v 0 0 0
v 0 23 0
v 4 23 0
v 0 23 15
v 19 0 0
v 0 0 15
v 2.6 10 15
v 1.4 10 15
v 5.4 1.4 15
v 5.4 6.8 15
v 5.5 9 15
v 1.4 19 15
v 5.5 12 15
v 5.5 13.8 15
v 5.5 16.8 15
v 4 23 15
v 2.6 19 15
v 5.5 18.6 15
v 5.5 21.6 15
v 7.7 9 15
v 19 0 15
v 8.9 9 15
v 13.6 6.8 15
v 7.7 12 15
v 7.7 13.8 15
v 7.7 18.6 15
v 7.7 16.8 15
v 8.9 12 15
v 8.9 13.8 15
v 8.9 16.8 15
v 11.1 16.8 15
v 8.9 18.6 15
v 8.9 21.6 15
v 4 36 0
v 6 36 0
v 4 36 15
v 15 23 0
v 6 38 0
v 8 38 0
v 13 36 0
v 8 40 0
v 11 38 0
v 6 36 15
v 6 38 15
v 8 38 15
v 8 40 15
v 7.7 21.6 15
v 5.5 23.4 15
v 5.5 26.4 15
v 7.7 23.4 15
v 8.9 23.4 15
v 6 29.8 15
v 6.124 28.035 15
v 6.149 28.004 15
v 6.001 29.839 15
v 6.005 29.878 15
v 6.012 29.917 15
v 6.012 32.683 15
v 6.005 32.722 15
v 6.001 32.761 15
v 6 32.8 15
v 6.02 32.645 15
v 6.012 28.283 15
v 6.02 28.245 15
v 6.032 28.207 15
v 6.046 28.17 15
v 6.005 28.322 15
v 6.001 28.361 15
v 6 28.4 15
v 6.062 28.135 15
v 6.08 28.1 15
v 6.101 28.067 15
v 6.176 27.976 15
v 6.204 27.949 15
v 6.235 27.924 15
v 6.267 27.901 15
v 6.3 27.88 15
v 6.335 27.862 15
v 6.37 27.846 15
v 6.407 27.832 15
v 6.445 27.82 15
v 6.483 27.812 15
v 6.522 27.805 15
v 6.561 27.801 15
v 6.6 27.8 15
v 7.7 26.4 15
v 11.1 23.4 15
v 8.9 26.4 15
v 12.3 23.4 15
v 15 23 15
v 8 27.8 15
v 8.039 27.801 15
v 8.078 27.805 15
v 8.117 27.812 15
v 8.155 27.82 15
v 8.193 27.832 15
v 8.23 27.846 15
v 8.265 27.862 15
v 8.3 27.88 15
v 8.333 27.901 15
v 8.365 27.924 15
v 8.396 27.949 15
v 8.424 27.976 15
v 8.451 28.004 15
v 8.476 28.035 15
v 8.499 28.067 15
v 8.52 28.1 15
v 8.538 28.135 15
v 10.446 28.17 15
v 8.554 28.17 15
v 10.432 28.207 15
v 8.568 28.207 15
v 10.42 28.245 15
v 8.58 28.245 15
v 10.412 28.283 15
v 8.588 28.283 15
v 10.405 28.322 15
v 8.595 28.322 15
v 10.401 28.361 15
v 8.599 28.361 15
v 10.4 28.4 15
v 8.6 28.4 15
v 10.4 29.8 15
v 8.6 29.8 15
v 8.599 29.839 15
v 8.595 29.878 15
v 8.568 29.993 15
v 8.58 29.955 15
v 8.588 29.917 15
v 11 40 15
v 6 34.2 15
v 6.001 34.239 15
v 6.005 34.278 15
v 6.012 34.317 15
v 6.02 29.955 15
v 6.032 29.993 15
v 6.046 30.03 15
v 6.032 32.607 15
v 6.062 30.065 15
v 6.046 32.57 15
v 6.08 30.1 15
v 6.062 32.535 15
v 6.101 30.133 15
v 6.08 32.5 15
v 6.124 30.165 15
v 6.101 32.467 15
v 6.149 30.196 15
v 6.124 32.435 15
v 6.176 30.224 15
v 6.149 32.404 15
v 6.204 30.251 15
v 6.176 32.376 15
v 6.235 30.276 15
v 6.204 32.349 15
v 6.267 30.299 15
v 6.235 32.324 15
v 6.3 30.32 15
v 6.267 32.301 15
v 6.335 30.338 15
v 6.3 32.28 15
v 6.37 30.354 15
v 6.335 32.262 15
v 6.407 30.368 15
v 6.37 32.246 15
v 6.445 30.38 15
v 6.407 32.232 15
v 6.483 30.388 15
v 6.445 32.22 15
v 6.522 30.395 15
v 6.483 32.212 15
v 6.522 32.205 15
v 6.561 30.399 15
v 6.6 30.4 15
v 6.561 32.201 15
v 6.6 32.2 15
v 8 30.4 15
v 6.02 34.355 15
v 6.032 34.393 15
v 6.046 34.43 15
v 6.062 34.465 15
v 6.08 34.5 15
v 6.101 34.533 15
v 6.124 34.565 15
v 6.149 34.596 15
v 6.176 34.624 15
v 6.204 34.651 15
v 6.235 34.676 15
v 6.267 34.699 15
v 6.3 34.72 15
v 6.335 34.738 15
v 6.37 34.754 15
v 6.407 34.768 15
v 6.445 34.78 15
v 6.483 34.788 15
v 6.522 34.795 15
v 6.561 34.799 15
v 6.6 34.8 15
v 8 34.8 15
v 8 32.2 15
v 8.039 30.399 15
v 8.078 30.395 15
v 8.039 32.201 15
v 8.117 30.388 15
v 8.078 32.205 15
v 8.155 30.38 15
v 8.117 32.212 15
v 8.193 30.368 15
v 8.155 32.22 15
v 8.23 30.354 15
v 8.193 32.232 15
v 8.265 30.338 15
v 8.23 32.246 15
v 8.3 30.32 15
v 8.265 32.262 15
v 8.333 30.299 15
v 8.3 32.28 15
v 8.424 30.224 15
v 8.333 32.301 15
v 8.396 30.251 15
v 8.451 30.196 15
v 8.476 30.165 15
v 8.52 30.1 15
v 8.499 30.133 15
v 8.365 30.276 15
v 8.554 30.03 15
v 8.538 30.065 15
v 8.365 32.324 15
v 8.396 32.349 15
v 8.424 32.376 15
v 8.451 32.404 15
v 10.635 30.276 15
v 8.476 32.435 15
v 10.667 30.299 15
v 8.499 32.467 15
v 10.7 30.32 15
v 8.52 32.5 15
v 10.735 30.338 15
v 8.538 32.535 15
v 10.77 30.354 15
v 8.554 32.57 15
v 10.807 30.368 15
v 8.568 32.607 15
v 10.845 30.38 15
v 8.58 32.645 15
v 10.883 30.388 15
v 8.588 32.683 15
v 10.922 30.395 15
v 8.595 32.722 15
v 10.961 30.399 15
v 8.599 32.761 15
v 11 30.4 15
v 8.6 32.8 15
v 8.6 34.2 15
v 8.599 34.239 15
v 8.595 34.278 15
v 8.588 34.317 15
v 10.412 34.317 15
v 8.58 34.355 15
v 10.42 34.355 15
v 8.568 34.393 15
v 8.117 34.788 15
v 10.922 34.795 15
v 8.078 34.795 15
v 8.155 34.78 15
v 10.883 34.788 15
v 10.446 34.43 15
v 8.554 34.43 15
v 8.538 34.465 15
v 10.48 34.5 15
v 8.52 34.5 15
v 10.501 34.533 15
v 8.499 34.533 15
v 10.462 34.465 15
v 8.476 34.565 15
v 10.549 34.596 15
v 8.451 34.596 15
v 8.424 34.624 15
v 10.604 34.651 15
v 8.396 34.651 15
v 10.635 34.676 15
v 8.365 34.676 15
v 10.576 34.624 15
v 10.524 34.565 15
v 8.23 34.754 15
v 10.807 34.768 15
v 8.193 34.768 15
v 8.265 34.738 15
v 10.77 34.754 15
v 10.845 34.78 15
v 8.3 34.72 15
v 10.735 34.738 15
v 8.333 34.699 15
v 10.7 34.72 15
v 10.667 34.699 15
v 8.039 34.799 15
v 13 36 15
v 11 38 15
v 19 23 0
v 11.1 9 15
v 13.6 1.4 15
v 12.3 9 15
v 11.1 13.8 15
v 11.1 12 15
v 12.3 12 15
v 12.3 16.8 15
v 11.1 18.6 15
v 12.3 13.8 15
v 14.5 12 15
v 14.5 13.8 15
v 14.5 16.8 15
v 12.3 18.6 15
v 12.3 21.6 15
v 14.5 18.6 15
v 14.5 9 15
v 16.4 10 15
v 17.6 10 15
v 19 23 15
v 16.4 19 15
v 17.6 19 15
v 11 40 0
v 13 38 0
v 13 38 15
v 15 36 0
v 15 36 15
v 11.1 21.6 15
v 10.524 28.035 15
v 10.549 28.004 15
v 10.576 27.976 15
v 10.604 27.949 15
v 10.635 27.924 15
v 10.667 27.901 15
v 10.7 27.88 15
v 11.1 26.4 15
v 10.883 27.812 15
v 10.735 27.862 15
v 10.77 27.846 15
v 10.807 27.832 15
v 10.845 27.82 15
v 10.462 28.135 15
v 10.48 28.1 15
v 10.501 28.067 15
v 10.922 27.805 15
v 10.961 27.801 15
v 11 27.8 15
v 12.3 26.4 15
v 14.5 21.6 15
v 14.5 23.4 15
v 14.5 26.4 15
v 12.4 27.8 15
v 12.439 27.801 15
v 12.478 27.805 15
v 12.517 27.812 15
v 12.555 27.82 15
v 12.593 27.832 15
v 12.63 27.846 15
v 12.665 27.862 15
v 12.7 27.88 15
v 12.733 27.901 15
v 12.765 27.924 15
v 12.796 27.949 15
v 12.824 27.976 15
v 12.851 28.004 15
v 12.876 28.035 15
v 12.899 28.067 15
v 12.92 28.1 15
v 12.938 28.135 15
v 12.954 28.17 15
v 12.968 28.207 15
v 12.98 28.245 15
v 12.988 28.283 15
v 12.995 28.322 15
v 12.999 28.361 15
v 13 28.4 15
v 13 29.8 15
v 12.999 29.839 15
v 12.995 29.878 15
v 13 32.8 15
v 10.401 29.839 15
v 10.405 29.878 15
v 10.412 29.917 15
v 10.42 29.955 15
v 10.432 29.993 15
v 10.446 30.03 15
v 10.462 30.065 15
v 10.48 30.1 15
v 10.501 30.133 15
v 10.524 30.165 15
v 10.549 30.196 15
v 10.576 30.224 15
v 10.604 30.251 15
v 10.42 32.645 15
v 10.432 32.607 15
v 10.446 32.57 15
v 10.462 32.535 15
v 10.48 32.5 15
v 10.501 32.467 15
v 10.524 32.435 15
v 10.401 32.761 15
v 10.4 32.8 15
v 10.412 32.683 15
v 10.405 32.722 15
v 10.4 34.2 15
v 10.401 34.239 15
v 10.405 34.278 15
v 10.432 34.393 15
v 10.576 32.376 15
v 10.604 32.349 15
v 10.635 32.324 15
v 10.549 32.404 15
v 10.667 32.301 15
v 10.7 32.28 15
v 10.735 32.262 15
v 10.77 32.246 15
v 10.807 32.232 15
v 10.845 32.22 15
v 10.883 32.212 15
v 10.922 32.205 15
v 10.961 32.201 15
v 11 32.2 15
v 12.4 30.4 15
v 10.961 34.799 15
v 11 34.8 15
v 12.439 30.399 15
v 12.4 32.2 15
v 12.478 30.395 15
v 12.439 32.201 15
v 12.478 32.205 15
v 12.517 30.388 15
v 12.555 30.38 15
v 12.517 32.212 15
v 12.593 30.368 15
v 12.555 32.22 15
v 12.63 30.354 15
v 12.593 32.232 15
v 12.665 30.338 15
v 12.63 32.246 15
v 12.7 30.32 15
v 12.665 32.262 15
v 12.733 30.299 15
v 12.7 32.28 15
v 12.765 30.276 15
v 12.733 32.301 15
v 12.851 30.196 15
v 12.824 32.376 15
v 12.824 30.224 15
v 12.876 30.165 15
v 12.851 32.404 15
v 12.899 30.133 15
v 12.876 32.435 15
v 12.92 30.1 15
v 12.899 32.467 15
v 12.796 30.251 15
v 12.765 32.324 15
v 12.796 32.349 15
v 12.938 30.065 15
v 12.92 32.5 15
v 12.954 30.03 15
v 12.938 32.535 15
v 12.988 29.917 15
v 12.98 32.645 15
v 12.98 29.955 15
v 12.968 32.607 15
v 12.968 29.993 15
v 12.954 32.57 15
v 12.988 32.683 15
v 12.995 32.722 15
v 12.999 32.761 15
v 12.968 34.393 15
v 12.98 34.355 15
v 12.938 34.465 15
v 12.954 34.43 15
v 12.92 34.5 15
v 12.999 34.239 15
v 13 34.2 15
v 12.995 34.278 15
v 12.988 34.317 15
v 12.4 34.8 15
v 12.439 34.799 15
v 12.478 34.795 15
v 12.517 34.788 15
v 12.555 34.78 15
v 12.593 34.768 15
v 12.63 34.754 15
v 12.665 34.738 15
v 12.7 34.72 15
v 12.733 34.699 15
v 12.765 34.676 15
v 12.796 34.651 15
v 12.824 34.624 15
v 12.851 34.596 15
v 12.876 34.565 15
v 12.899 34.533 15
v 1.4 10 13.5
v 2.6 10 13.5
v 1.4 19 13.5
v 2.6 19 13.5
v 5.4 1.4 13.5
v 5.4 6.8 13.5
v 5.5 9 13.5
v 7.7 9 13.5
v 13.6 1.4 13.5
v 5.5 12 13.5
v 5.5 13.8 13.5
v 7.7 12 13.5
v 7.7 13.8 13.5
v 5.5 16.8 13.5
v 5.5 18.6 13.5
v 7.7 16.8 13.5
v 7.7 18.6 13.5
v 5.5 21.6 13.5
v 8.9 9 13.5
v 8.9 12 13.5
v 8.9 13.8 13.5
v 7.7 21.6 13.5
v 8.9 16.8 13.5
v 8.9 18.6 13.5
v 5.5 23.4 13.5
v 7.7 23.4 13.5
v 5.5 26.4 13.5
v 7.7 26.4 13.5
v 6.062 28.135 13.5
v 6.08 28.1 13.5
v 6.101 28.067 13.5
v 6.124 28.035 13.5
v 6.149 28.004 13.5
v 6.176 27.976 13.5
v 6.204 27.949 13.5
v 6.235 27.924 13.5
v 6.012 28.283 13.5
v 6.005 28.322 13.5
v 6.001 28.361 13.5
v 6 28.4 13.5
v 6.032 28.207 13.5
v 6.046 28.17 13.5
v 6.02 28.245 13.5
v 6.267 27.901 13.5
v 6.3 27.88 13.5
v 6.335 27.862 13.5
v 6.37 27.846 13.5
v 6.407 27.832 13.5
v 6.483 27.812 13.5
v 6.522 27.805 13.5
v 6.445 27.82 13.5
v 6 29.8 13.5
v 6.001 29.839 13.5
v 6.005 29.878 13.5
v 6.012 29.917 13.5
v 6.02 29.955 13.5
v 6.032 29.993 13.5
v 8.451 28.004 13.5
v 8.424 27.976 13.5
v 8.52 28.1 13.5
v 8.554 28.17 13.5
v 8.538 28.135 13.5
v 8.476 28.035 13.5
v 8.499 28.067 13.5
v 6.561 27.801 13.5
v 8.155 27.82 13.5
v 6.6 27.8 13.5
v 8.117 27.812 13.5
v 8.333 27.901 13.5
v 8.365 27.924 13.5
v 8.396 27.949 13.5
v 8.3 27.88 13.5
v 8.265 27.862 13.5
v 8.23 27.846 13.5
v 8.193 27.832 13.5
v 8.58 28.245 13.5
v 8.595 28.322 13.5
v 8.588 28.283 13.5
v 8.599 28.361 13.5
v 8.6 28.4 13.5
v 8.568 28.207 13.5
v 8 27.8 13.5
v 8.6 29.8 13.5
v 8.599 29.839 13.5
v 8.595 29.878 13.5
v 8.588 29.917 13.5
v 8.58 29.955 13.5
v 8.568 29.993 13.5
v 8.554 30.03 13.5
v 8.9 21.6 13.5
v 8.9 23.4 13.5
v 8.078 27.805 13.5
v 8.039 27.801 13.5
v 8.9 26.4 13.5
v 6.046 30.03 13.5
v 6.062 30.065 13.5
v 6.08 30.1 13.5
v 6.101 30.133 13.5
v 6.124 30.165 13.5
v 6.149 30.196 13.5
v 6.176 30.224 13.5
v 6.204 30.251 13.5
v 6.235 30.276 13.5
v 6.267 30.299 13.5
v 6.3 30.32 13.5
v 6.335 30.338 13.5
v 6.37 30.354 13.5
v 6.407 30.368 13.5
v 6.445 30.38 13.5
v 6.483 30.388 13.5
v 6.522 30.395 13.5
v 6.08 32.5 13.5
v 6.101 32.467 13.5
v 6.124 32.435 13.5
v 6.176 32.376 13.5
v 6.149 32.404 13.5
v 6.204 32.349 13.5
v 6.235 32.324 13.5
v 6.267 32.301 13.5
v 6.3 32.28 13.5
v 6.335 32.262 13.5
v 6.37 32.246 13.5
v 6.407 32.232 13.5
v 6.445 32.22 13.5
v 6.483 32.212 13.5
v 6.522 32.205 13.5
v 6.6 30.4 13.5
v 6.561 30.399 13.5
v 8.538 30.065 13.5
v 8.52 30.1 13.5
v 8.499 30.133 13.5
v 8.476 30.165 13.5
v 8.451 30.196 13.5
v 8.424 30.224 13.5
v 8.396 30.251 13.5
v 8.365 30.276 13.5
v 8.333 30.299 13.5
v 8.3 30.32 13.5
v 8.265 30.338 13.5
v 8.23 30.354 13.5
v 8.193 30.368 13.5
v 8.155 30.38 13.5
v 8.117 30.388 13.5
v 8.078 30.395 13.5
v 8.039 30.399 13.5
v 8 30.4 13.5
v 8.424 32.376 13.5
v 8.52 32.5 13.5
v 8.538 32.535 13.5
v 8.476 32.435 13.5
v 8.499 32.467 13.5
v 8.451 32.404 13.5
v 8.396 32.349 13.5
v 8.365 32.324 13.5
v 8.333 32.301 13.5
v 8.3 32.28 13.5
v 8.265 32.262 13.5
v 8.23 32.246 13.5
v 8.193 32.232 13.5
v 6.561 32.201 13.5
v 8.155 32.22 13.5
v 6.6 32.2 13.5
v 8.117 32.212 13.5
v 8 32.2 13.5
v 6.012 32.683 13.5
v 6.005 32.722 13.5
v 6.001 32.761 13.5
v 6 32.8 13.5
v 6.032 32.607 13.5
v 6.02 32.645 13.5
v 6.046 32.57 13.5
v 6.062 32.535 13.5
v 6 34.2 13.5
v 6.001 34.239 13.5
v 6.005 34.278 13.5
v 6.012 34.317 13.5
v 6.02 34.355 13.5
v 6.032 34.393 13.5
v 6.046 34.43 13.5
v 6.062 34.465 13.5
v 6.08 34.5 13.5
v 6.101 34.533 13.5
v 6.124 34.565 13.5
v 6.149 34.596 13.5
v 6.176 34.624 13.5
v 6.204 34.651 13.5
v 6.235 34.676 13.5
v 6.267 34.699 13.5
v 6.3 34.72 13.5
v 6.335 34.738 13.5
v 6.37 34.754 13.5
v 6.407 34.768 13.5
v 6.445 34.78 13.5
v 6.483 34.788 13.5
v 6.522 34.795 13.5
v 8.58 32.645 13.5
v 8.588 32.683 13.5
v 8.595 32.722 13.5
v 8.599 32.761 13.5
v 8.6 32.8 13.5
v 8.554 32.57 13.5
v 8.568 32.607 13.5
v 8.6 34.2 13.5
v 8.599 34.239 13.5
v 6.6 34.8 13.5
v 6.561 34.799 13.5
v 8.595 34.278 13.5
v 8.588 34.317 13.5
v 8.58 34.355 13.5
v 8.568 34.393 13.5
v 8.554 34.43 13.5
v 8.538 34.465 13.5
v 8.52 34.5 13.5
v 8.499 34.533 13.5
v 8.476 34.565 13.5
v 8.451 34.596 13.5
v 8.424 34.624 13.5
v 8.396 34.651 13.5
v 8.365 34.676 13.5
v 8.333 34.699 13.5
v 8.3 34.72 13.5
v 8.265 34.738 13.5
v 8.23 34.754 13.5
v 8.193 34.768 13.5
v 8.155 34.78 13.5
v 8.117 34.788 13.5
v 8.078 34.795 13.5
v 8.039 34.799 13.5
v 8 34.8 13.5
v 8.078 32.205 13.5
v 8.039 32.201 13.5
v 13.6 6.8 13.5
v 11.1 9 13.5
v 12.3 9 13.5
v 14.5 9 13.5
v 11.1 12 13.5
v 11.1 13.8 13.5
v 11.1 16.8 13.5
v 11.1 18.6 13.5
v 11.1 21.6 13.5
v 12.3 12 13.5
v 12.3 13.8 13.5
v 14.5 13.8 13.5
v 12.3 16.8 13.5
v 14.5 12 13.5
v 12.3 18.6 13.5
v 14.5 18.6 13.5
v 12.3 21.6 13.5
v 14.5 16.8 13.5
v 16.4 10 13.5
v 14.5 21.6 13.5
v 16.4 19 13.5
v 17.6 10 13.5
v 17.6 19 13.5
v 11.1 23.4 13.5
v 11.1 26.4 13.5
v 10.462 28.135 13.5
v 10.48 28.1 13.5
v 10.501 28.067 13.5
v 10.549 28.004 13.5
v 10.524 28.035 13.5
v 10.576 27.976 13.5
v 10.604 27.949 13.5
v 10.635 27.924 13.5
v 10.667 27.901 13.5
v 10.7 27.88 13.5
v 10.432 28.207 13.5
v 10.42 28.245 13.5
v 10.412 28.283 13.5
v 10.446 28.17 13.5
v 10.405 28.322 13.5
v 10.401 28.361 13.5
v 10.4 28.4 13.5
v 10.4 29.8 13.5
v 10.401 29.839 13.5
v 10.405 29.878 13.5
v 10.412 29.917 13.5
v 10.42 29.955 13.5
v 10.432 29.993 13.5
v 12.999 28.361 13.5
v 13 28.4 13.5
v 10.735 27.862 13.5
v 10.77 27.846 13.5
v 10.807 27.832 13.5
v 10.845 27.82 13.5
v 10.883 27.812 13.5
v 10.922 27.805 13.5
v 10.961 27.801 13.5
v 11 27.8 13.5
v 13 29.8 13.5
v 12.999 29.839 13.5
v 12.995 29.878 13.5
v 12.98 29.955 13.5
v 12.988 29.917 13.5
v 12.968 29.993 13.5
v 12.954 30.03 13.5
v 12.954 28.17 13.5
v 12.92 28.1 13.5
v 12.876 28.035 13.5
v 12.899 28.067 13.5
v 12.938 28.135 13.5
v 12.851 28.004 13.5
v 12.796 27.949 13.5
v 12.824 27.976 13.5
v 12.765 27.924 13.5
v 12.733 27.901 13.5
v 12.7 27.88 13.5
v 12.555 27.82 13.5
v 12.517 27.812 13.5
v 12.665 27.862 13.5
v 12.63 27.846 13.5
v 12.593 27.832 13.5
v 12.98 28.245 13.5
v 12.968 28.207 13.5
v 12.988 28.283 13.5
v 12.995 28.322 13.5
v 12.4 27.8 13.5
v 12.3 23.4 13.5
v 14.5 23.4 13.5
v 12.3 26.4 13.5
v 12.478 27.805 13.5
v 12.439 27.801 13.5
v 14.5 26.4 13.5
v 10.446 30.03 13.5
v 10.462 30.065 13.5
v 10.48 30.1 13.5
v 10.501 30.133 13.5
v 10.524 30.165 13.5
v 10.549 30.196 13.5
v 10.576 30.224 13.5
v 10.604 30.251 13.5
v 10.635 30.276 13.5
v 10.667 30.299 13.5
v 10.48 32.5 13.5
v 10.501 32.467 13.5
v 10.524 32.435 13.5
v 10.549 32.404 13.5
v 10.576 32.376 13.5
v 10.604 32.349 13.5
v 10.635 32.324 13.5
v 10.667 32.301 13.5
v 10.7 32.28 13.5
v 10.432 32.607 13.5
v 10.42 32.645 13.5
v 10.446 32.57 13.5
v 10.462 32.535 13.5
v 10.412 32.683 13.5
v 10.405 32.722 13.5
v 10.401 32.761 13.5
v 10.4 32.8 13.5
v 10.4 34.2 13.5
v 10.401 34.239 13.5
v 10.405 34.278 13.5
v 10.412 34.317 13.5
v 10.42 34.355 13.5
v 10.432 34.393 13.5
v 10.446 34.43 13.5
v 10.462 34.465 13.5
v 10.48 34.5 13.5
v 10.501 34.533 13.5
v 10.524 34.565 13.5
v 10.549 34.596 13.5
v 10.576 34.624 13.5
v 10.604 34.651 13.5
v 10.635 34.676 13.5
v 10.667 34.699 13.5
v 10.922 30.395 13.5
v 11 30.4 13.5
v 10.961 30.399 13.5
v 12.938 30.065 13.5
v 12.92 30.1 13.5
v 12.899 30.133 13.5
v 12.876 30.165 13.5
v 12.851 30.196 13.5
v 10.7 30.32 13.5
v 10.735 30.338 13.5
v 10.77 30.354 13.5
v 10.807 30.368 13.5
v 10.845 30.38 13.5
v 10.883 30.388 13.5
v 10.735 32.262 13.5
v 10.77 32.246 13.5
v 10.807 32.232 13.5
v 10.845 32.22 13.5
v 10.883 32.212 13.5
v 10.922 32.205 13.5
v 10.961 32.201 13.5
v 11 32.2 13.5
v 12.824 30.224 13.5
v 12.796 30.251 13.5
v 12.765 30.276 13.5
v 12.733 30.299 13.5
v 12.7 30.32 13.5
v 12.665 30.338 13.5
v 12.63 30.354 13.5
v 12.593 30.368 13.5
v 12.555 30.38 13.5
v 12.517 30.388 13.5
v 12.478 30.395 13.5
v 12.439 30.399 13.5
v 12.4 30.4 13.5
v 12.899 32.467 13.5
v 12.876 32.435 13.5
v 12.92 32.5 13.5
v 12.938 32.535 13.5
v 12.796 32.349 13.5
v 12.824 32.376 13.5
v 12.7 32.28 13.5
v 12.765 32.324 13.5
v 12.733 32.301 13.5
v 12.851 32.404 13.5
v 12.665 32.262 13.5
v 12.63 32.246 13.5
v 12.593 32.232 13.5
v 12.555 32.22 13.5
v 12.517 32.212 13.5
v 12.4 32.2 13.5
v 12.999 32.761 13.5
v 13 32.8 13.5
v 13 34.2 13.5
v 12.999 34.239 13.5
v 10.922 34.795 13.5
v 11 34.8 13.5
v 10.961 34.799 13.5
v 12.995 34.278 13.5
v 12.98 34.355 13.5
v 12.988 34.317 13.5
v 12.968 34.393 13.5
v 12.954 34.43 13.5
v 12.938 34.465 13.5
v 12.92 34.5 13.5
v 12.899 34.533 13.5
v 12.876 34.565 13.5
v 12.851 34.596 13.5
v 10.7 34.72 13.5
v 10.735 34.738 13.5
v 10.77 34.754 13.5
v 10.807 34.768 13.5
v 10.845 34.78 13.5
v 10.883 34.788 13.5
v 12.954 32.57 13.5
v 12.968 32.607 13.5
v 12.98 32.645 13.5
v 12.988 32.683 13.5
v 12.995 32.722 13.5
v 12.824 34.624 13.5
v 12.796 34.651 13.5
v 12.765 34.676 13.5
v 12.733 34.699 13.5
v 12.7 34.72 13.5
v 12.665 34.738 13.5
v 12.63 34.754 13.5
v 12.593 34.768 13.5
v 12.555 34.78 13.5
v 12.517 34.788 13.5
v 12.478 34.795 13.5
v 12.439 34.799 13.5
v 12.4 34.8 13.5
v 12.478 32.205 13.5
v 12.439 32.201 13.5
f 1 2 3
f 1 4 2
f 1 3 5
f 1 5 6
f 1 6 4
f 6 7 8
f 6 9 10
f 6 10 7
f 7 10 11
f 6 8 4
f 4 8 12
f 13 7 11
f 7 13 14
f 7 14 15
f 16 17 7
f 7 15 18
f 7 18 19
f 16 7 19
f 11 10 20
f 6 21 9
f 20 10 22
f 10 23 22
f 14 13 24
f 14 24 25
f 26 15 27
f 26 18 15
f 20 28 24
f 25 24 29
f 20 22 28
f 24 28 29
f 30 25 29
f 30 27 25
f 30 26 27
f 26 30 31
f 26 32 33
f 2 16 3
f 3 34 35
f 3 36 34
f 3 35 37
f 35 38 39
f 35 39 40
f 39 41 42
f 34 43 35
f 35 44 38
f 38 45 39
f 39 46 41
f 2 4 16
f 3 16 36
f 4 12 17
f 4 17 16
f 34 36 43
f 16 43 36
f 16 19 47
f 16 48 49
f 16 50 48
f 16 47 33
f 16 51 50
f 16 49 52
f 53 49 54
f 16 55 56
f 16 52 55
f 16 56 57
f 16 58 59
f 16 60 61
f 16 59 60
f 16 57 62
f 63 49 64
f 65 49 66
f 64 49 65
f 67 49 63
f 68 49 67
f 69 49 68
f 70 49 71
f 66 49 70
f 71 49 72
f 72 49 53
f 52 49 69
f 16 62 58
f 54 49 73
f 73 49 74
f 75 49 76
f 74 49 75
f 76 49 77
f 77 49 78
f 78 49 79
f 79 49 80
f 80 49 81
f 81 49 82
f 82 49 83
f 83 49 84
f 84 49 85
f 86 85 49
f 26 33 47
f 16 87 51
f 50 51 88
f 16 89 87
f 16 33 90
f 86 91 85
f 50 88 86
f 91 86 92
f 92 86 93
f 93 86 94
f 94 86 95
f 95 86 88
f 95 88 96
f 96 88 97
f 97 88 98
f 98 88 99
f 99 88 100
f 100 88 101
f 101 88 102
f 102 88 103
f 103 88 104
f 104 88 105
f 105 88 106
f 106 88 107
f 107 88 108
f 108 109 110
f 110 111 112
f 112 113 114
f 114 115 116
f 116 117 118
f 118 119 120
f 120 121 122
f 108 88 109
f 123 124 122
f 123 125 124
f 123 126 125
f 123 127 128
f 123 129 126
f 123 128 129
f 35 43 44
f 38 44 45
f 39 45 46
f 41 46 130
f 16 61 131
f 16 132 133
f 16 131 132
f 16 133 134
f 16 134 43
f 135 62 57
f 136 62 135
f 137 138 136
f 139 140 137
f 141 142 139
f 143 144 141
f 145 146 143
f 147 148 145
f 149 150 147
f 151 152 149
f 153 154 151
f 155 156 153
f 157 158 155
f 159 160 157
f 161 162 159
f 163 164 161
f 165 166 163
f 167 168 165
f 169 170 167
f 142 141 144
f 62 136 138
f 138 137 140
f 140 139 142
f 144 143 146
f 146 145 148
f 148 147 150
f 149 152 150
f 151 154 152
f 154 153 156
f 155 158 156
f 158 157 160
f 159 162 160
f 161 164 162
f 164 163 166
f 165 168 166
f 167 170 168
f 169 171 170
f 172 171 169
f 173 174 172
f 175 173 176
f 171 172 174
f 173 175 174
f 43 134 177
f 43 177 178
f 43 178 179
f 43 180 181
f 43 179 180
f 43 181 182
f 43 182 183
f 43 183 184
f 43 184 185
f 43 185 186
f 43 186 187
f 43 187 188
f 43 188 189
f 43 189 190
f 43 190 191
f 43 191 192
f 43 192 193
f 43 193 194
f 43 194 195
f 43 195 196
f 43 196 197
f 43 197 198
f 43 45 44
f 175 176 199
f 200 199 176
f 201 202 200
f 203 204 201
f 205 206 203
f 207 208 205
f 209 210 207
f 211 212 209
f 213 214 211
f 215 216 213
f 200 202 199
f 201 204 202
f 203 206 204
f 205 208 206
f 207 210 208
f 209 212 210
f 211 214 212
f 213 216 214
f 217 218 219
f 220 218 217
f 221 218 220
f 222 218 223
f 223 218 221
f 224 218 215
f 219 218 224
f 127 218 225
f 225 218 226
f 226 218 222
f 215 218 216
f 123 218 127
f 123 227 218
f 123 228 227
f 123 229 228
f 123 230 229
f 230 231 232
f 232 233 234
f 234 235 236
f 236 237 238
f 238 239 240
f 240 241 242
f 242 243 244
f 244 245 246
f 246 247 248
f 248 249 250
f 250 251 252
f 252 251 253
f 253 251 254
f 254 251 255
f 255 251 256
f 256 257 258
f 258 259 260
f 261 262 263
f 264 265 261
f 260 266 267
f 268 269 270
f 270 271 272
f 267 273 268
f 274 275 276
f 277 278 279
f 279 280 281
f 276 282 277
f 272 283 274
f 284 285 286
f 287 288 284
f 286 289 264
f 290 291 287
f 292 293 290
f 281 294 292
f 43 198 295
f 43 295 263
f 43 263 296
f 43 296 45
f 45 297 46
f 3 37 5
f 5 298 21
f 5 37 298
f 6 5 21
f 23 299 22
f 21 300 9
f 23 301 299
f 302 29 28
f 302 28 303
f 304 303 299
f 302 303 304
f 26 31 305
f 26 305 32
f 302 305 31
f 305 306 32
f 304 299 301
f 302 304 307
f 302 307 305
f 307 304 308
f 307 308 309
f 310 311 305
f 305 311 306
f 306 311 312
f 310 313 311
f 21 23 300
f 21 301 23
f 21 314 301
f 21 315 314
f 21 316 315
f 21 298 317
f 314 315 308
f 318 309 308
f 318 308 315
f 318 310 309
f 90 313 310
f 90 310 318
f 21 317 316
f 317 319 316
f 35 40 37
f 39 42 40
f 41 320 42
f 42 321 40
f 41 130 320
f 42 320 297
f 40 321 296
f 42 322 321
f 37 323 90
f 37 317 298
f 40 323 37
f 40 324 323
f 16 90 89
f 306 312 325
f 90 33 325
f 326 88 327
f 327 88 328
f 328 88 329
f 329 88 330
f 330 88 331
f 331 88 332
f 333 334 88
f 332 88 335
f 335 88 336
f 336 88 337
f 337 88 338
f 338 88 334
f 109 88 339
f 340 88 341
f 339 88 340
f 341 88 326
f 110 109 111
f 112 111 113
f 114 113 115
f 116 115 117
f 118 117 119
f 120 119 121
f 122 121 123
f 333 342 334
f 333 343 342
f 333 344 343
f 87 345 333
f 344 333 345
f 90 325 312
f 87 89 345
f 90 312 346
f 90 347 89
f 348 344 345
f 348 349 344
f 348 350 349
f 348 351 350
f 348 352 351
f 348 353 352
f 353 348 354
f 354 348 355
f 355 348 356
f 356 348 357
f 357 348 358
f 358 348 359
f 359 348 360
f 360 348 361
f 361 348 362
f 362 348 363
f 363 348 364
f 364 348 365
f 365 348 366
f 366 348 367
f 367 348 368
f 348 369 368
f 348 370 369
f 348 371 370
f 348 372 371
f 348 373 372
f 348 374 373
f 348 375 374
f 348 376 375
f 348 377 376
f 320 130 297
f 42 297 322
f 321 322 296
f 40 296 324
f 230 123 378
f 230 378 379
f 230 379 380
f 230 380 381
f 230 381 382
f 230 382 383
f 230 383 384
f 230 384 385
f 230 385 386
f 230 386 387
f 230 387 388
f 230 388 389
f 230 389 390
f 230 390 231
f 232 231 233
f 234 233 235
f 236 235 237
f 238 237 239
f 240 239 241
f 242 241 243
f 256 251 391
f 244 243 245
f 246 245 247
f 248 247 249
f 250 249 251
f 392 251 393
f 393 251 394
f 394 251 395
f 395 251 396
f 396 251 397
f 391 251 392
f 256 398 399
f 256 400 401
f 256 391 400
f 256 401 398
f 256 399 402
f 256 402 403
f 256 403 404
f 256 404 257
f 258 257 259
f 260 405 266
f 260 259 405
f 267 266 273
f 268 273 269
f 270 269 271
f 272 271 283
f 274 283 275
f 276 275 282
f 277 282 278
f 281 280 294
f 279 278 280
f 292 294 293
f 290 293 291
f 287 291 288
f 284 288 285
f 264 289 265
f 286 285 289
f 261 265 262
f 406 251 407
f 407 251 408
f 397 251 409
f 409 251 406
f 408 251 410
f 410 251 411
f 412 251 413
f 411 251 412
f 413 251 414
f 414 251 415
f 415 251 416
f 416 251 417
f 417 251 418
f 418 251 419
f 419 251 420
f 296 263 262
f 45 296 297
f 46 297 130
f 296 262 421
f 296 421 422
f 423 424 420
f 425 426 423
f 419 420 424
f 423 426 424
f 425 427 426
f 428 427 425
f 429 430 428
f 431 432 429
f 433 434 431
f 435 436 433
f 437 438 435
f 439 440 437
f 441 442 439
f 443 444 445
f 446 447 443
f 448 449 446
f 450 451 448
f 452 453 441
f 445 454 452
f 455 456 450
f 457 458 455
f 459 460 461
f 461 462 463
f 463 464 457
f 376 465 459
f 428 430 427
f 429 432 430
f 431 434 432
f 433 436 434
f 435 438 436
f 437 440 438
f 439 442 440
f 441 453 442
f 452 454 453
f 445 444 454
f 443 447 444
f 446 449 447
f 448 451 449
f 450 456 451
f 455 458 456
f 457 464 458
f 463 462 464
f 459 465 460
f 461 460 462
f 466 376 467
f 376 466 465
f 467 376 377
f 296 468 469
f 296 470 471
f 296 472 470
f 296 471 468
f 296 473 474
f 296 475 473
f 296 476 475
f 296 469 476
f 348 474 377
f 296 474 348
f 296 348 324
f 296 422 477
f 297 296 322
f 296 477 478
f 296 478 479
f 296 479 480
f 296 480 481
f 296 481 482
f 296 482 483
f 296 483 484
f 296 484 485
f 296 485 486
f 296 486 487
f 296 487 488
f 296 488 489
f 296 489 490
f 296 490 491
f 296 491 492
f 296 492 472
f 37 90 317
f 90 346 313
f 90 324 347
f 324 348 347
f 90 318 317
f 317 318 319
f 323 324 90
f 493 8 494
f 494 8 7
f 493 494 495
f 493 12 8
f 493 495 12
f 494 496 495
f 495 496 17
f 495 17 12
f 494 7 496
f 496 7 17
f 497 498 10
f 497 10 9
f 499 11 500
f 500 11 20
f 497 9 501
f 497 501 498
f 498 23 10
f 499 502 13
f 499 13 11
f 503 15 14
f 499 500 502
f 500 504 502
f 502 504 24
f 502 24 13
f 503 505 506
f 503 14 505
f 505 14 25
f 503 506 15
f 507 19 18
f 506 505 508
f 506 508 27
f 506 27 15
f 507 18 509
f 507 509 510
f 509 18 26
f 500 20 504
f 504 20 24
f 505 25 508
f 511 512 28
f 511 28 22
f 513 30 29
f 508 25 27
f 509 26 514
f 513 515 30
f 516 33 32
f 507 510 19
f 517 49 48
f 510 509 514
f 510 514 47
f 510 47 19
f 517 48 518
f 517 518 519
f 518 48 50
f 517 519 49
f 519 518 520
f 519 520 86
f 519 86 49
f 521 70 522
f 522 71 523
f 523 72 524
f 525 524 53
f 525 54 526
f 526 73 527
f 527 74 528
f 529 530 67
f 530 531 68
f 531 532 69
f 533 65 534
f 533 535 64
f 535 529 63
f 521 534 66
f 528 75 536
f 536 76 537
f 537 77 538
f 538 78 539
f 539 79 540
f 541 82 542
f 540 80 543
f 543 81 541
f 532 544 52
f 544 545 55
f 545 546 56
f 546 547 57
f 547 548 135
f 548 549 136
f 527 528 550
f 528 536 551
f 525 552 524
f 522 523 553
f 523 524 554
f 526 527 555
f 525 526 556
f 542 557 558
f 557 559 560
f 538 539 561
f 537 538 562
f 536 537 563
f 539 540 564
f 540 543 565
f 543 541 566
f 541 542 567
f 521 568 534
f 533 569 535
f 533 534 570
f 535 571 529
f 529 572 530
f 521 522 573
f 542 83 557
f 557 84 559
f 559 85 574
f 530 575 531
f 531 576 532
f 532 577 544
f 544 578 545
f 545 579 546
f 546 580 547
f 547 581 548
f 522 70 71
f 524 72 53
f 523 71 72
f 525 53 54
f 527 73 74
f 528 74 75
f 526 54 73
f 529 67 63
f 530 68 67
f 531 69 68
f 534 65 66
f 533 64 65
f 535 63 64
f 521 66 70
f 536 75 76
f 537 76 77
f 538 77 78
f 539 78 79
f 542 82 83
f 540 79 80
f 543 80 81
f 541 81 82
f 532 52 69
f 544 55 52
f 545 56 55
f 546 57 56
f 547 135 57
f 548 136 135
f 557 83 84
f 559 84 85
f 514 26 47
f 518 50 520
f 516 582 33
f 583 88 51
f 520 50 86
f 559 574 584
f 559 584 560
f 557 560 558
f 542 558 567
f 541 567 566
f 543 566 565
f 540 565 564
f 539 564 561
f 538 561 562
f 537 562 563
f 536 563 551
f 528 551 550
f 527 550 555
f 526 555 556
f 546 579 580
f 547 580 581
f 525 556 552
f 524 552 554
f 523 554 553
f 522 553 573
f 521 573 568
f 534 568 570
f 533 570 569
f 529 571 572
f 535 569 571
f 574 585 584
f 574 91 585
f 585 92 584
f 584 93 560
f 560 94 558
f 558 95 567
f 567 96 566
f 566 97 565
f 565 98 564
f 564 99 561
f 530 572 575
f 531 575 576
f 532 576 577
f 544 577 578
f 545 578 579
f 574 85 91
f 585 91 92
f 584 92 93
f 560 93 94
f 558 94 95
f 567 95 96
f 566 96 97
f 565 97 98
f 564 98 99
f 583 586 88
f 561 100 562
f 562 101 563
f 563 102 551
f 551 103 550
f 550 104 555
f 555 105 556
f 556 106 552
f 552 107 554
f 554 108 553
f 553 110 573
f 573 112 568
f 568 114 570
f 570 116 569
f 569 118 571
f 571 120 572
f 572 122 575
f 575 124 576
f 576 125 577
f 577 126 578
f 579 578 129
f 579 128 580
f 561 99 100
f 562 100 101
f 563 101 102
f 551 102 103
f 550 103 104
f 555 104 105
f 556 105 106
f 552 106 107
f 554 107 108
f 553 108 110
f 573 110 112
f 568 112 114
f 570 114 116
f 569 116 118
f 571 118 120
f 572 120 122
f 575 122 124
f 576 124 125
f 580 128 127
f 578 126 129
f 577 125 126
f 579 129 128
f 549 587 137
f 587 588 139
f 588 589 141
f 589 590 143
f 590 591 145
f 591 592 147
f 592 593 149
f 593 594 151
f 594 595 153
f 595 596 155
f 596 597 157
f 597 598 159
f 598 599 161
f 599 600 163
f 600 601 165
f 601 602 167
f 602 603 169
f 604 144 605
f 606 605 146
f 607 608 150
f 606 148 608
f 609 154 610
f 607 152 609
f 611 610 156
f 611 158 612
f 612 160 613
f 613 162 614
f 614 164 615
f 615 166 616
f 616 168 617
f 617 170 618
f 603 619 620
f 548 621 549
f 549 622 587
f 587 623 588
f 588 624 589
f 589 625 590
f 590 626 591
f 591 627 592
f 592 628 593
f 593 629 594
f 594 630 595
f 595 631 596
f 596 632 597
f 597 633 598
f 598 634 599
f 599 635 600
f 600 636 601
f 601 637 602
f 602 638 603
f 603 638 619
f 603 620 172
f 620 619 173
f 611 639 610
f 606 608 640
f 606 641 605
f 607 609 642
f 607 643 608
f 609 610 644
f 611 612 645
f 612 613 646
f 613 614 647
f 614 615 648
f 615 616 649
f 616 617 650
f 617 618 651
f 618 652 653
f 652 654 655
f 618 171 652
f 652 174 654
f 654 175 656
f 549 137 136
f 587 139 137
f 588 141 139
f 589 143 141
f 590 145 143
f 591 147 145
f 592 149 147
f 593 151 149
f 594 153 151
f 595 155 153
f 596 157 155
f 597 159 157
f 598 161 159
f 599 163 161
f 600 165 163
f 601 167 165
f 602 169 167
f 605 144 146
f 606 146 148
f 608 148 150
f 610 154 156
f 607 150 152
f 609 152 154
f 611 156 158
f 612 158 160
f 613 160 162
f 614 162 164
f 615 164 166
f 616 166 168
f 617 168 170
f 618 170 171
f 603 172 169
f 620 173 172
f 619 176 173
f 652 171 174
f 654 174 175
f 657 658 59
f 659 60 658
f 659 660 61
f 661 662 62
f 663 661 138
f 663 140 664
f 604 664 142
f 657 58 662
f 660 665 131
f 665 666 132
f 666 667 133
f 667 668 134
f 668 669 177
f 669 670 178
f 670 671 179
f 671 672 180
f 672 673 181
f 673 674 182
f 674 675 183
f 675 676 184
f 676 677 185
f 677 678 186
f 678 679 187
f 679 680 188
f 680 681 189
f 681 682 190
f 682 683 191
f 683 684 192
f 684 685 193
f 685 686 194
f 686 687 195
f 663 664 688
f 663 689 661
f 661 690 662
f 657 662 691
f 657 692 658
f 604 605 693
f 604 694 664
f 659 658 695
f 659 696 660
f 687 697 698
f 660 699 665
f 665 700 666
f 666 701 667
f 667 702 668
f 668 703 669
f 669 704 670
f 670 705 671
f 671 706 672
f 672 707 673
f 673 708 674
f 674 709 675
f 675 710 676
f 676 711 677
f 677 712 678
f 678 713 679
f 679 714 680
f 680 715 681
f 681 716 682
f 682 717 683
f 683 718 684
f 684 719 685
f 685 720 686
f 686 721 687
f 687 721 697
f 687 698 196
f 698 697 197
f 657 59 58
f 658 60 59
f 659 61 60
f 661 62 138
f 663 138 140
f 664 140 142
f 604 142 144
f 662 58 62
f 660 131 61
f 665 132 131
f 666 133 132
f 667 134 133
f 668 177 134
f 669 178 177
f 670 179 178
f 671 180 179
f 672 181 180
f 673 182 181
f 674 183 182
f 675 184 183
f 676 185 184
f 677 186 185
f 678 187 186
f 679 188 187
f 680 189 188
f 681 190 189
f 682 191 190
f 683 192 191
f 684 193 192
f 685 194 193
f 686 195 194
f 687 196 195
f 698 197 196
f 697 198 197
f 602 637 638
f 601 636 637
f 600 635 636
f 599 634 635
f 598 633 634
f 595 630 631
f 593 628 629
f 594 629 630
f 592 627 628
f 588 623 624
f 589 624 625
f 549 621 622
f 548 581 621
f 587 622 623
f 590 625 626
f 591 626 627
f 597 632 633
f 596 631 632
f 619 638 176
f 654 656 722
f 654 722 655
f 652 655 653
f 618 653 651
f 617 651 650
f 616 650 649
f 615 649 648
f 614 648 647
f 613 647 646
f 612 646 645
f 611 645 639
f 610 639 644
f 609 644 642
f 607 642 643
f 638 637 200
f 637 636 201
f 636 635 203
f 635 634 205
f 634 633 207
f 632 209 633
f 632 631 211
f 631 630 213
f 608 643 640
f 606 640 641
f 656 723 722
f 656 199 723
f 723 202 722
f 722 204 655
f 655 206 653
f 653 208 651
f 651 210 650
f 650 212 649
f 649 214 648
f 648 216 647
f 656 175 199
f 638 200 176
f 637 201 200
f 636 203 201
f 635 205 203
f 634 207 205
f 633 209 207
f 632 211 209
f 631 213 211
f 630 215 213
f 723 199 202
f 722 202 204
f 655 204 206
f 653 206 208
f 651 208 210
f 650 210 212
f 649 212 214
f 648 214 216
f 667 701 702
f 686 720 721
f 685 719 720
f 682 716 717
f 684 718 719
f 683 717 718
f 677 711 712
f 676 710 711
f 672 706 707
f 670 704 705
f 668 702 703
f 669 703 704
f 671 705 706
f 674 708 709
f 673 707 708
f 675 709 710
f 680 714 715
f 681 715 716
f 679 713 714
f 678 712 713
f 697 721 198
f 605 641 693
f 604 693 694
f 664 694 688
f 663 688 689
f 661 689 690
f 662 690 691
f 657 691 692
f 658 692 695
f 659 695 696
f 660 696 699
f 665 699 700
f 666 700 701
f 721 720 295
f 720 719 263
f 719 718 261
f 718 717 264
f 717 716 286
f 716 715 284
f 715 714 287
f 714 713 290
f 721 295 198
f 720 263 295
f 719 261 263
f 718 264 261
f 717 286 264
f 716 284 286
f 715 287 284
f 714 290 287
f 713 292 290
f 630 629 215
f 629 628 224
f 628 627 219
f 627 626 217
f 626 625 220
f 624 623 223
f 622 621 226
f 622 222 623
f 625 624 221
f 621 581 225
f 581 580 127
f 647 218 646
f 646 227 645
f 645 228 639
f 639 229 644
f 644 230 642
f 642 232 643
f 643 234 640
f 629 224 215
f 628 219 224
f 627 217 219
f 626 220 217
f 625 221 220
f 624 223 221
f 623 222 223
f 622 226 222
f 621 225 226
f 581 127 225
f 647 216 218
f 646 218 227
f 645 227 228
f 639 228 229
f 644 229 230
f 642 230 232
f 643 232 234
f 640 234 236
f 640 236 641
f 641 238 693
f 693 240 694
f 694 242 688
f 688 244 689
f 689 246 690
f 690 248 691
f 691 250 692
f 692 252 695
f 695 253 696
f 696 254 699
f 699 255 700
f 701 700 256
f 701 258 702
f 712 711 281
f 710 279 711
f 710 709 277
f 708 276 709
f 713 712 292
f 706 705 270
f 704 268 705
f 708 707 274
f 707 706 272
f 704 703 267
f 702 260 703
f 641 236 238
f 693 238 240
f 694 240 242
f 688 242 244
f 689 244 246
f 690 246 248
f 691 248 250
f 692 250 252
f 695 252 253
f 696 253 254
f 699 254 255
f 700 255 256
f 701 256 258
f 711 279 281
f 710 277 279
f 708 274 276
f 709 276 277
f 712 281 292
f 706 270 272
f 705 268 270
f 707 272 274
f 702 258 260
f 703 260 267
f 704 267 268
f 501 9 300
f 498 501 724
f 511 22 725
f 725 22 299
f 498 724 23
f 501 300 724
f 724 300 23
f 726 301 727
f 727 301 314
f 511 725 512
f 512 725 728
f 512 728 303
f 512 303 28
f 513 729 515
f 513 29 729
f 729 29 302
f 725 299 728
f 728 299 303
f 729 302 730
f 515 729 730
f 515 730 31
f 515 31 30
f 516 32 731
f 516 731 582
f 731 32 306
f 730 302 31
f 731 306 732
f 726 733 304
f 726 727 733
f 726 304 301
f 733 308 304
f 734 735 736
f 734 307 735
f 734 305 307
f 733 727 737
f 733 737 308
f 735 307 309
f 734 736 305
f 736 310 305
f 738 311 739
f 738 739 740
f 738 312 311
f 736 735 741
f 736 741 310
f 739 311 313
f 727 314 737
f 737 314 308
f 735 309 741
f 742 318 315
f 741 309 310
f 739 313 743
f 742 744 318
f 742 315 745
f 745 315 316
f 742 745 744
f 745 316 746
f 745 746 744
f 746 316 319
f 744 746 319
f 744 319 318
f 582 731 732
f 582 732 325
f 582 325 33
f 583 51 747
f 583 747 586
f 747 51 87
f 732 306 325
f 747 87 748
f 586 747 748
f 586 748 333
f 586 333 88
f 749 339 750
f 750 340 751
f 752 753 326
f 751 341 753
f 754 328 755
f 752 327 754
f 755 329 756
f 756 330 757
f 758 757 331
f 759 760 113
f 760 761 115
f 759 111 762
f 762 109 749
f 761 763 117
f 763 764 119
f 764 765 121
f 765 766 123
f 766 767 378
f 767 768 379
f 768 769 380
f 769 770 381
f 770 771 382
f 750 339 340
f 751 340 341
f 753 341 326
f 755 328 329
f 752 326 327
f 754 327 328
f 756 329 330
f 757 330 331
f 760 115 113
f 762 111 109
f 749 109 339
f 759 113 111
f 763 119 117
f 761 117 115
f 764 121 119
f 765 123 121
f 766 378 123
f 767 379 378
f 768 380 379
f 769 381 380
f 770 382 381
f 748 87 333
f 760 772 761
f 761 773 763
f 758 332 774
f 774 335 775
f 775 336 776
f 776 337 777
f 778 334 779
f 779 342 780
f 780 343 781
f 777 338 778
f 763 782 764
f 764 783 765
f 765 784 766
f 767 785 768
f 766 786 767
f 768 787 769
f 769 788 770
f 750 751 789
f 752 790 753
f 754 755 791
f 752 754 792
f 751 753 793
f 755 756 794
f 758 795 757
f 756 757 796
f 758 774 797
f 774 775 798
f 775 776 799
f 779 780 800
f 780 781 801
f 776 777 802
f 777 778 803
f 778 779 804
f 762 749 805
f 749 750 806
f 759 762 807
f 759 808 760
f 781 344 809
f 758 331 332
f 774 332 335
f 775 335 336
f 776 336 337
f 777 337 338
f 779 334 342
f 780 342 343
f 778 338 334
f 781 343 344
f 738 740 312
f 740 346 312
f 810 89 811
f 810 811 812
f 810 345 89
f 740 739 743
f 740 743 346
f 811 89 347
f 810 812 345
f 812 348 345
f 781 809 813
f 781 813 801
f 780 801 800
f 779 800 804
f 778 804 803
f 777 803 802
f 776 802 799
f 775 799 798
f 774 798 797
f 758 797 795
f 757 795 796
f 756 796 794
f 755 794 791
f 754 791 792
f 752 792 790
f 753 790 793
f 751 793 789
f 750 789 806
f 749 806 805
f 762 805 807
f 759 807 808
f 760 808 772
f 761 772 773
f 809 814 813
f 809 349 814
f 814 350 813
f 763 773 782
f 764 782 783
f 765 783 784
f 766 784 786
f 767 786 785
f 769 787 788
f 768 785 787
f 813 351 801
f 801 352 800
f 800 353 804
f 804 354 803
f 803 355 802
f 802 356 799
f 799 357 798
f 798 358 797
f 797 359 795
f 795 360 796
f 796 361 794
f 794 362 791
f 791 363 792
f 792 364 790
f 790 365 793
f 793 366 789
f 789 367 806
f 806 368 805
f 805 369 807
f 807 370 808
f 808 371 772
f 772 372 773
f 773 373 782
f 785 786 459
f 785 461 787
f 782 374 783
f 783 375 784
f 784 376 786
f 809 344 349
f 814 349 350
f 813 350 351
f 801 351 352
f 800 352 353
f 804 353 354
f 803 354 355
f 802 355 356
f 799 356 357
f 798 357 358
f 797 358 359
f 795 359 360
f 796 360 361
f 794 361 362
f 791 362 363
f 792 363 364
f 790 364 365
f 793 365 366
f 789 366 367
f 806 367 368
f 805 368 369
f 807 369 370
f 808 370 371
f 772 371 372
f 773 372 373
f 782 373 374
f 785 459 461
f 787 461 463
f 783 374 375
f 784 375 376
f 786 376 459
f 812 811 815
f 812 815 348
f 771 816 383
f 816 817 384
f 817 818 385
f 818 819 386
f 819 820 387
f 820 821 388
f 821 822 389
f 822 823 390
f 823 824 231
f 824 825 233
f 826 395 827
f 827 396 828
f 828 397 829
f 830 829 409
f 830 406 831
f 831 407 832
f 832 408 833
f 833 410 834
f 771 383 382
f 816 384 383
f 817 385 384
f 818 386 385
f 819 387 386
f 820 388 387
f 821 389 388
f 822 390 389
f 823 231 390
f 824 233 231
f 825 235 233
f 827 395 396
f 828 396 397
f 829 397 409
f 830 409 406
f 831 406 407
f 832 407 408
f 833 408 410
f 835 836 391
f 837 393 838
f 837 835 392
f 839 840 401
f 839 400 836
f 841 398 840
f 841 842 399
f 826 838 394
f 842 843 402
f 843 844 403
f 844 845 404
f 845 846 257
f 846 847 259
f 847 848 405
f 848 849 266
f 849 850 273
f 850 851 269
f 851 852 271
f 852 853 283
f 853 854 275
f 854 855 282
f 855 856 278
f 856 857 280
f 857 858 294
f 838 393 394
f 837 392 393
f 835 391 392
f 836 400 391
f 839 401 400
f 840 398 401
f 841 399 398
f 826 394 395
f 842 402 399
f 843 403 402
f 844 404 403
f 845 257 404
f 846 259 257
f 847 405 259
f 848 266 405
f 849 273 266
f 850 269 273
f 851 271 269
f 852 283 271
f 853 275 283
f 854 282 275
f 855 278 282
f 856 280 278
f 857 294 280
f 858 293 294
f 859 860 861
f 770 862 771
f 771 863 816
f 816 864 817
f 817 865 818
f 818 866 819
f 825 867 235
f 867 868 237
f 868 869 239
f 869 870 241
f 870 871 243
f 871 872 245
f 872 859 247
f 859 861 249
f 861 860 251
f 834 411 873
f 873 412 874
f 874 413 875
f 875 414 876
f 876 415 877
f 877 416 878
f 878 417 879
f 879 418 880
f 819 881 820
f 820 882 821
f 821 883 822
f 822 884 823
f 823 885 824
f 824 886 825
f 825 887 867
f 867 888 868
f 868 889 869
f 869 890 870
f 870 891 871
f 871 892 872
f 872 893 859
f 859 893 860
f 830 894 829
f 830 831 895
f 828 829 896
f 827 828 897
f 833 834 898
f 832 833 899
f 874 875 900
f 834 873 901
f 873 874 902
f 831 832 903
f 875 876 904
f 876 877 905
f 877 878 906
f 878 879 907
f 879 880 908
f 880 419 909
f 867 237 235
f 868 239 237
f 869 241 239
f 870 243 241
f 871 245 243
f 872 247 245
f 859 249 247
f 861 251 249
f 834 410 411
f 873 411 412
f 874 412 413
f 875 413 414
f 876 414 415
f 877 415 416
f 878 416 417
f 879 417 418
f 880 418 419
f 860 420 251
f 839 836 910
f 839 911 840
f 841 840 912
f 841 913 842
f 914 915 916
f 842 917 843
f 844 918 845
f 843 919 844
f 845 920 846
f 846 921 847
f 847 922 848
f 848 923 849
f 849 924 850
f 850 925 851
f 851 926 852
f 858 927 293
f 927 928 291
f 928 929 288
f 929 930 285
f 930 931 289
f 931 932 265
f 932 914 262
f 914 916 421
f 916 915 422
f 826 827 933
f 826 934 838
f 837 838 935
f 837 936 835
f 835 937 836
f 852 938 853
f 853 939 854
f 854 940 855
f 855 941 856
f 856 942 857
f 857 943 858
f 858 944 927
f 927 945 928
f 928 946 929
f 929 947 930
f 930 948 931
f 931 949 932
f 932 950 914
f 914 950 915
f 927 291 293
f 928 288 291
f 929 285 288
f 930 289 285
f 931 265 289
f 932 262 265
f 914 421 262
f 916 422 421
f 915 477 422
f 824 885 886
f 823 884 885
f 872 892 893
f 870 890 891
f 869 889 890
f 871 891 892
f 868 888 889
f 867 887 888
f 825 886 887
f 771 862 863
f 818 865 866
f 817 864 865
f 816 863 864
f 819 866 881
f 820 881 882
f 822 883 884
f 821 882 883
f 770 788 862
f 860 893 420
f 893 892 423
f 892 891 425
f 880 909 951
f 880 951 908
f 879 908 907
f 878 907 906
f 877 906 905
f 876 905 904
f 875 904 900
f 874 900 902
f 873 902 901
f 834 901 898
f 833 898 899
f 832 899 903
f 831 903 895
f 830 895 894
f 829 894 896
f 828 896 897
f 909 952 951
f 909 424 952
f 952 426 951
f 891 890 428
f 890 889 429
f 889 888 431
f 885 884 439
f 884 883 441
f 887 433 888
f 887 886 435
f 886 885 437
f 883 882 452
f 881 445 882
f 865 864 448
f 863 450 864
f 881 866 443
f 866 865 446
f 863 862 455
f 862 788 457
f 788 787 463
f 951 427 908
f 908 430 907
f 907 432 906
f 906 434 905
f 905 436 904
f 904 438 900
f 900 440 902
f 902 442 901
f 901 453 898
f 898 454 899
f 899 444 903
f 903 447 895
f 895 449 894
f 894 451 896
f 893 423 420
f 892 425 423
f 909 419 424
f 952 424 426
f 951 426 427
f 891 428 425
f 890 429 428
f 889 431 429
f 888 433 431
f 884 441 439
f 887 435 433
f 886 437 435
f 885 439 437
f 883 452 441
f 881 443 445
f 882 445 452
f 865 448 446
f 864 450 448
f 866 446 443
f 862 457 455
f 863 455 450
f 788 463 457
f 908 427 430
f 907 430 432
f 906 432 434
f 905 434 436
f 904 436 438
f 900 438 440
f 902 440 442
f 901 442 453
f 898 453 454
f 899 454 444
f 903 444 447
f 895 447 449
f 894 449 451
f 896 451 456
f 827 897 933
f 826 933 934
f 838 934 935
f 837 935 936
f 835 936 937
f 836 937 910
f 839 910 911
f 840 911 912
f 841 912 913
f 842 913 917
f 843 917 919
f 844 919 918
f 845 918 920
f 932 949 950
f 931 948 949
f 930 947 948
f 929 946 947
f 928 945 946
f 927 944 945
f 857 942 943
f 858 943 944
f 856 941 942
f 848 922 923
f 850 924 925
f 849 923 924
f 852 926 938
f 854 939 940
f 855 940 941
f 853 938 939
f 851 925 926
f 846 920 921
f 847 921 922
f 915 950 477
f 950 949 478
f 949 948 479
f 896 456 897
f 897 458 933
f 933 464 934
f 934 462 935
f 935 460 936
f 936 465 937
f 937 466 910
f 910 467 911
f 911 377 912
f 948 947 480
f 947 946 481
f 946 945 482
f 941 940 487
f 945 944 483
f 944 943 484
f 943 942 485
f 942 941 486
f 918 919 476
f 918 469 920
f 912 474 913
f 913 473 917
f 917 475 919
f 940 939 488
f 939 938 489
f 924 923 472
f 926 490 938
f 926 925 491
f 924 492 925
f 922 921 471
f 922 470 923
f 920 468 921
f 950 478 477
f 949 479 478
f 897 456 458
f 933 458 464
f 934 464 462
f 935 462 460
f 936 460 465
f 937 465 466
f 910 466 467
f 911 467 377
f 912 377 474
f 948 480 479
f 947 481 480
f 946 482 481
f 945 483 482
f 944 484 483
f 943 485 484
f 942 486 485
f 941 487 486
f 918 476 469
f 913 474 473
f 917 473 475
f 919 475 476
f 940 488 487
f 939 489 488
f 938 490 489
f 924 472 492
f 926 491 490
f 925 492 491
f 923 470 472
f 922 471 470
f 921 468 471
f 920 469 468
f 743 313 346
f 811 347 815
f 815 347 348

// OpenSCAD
// Building miniatures — Tech, AI & Digital
// Units: millimetres. X = width; Y = facade height; Z = depth.
// Print flat on the back at Z=0. Front Z=15; recesses are 1.5 mm deep.
$fn=96;
depth=15;
recess=1.5;
module rect(x,y,w,h) { translate([x,y]) square([w,h]); }
module disc(x,y,r) { translate([x,y]) circle(r=r); }
module rr(x,y,w,h,r=1) { hull() for(a=[x+r,x+w-r],b=[y+r,y+h-r]) disc(a,b,r); }
module stroke(a,b,w=1.4) { hull() {disc(a[0],a[1],w/2);disc(b[0],b[1],w/2);} }
module ring(x,y,r,w=1.4) { difference(){disc(x,y,r);disc(x,y,r-w);} }
module framed(x,y,w,h,t=1.4) { difference(){rect(x,y,w,h);rect(x+t,y+t,w-2*t,h-2*t);} }
module arrow(a,b,w=1.5) { v=b-a; u=v/norm(v); n=[-u[1],u[0]]; tip=b; neck=b-u*2.8; stroke(a,neck,w); polygon([tip,neck+n*1.9,neck-n*1.9]); }
module building(){difference(){linear_extrude(height=depth) silhouette();translate([0,0,depth-recess]) linear_extrude(height=recess+0.2) details();}}
building();

module silhouette(){polygon([[0,0],[19,0],[19,23],[15,23],[15,36],[13,36],[13,38],[11,38],[11,40],[8,40],[8,38],[6,38],[6,36],[4,36],[4,23],[0,23]]);}
module details(){
 rect(5.4,1.4,8.2,5.4);
 for(x=[5.5,8.9,12.3],y=[9,13.8,18.6,23.4]) rect(x,y,2.2,3.0);
 for(x=[6.0,10.4],y=[27.8,32.2]) rr(x,y,2.6,2.6,0.6);
 rect(1.4,10,1.2,9);rect(16.4,10,1.2,9);
}
